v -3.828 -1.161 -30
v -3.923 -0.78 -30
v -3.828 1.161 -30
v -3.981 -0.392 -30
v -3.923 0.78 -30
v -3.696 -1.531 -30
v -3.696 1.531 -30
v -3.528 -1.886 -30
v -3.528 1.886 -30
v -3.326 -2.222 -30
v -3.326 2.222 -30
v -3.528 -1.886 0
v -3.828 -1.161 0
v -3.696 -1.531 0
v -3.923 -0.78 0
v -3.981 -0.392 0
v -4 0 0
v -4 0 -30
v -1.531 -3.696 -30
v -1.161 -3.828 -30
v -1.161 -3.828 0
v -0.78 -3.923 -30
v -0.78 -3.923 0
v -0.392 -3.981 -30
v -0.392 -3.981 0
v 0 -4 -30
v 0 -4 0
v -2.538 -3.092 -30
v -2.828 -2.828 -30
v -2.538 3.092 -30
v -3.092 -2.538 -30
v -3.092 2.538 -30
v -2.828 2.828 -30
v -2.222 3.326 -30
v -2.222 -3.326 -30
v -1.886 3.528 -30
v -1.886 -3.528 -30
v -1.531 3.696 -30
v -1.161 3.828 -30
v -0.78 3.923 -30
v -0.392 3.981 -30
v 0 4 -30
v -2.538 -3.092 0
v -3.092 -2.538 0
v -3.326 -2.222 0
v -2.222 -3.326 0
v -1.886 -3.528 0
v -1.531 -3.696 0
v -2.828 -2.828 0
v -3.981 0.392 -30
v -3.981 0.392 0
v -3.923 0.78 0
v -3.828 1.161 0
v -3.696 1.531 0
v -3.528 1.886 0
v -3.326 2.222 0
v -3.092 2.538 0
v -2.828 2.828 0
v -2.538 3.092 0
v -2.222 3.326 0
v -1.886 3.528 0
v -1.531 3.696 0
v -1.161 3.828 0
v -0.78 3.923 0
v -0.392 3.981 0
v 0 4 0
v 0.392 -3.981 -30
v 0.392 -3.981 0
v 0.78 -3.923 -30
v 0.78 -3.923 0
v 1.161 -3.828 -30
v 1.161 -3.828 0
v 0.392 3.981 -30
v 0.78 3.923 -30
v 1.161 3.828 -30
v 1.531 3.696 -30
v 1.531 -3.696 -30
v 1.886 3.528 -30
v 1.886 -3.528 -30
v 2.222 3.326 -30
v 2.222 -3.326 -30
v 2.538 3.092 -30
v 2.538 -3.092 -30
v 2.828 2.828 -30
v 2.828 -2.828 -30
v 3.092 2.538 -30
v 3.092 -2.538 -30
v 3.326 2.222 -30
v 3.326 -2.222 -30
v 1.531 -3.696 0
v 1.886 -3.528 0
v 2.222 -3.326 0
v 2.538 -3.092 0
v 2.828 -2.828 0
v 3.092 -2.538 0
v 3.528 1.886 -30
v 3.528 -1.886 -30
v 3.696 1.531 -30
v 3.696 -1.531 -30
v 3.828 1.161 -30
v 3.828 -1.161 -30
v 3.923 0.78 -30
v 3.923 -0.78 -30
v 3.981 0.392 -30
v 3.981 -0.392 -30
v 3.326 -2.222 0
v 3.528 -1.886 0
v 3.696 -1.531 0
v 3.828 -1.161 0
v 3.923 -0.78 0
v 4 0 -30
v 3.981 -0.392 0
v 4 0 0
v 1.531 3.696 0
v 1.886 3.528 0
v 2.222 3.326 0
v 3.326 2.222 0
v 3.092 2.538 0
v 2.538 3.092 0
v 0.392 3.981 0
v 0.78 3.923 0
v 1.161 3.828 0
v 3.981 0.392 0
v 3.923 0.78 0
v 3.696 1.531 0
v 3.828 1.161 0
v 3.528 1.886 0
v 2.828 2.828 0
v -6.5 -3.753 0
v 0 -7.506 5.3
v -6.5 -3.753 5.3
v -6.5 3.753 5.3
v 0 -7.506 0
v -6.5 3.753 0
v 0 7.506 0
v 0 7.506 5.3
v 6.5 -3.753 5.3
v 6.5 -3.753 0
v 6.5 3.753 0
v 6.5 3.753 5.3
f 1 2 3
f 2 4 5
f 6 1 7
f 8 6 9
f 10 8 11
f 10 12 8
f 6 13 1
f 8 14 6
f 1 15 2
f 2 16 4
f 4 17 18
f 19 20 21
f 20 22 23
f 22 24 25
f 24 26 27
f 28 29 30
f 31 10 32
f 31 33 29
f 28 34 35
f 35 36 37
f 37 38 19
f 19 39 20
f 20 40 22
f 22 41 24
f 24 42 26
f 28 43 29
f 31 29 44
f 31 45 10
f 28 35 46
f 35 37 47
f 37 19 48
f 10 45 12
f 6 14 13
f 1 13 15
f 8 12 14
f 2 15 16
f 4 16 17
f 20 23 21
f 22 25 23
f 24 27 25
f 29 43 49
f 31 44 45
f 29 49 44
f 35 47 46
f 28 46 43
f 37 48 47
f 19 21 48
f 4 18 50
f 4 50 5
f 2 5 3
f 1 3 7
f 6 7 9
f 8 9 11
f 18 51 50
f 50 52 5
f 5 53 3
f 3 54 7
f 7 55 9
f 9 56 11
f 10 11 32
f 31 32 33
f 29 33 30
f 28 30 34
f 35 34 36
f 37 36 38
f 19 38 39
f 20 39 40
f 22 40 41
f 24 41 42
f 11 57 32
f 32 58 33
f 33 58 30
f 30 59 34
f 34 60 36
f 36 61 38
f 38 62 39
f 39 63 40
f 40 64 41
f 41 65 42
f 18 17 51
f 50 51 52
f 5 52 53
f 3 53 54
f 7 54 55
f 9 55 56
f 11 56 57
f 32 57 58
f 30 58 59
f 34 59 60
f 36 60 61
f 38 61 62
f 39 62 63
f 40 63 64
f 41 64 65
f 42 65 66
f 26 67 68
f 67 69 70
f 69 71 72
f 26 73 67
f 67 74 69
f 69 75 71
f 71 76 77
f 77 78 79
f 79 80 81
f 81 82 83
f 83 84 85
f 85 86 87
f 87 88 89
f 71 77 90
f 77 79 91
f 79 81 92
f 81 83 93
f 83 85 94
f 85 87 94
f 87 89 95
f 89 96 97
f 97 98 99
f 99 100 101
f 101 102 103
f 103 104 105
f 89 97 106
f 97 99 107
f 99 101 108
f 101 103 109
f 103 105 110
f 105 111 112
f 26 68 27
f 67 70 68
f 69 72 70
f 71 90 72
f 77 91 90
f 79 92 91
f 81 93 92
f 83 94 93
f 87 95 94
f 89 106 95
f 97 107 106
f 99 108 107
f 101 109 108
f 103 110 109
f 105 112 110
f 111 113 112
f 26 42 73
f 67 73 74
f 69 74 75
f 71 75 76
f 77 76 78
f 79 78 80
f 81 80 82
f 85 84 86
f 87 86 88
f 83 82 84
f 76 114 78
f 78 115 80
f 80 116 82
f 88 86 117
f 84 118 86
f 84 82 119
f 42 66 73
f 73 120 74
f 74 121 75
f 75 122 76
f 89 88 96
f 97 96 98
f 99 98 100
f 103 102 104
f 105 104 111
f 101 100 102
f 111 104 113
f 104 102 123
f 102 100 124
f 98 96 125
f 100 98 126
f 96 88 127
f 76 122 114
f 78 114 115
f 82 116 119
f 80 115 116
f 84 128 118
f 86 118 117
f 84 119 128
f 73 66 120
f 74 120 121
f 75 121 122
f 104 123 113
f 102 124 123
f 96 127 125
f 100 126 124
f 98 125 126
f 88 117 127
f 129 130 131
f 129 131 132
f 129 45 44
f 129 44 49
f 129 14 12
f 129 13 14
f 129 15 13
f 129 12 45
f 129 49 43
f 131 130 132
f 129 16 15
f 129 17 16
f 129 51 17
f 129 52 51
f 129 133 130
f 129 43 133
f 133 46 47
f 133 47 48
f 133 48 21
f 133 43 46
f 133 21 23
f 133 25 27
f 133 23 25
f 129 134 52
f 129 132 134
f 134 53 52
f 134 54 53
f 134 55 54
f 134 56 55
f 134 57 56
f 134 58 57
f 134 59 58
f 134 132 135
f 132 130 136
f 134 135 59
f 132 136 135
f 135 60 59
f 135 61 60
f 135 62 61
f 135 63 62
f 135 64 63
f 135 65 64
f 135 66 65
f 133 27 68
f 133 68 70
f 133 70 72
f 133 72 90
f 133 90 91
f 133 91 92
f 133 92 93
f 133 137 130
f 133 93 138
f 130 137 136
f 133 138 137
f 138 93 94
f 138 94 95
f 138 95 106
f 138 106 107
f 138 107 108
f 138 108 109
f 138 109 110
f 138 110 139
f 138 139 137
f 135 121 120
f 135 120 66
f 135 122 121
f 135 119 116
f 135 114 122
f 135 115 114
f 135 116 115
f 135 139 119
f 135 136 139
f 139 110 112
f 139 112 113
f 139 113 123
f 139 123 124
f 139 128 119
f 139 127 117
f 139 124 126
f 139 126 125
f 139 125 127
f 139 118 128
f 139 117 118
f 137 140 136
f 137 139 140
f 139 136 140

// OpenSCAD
// M8 Hex Bolt (Standard Dimensions)
// $fn is set globally for the shank smoothness.
$fn = 64;

// Dimensions
head_across_flats = 13;
head_height = 5.3;
shank_diameter = 8;
shank_length = 30;

// Hexagon calculation:
// The distance across the flats (W) is related to the vertex-to-vertex diameter (D) by:
// W = D * cos(30 degrees)  =>  D = W / cos(30 degrees)
head_diameter = head_across_flats / cos(30);

// --- Shank ---
// Placed from z = -30 to z = 0
translate([0, 0, -shank_length])
    cylinder(d = shank_diameter, h = shank_length);

// --- Head ---
// Placed from z = 0 to z = 5.3
// Using $fn=6 creates a perfect hexagon.
// Rotating by 30 degrees ensures the flat face is perpendicular to the X-axis.
rotate([0, 0, 30])
    cylinder(d = head_diameter, h = head_height, $fn = 6);
